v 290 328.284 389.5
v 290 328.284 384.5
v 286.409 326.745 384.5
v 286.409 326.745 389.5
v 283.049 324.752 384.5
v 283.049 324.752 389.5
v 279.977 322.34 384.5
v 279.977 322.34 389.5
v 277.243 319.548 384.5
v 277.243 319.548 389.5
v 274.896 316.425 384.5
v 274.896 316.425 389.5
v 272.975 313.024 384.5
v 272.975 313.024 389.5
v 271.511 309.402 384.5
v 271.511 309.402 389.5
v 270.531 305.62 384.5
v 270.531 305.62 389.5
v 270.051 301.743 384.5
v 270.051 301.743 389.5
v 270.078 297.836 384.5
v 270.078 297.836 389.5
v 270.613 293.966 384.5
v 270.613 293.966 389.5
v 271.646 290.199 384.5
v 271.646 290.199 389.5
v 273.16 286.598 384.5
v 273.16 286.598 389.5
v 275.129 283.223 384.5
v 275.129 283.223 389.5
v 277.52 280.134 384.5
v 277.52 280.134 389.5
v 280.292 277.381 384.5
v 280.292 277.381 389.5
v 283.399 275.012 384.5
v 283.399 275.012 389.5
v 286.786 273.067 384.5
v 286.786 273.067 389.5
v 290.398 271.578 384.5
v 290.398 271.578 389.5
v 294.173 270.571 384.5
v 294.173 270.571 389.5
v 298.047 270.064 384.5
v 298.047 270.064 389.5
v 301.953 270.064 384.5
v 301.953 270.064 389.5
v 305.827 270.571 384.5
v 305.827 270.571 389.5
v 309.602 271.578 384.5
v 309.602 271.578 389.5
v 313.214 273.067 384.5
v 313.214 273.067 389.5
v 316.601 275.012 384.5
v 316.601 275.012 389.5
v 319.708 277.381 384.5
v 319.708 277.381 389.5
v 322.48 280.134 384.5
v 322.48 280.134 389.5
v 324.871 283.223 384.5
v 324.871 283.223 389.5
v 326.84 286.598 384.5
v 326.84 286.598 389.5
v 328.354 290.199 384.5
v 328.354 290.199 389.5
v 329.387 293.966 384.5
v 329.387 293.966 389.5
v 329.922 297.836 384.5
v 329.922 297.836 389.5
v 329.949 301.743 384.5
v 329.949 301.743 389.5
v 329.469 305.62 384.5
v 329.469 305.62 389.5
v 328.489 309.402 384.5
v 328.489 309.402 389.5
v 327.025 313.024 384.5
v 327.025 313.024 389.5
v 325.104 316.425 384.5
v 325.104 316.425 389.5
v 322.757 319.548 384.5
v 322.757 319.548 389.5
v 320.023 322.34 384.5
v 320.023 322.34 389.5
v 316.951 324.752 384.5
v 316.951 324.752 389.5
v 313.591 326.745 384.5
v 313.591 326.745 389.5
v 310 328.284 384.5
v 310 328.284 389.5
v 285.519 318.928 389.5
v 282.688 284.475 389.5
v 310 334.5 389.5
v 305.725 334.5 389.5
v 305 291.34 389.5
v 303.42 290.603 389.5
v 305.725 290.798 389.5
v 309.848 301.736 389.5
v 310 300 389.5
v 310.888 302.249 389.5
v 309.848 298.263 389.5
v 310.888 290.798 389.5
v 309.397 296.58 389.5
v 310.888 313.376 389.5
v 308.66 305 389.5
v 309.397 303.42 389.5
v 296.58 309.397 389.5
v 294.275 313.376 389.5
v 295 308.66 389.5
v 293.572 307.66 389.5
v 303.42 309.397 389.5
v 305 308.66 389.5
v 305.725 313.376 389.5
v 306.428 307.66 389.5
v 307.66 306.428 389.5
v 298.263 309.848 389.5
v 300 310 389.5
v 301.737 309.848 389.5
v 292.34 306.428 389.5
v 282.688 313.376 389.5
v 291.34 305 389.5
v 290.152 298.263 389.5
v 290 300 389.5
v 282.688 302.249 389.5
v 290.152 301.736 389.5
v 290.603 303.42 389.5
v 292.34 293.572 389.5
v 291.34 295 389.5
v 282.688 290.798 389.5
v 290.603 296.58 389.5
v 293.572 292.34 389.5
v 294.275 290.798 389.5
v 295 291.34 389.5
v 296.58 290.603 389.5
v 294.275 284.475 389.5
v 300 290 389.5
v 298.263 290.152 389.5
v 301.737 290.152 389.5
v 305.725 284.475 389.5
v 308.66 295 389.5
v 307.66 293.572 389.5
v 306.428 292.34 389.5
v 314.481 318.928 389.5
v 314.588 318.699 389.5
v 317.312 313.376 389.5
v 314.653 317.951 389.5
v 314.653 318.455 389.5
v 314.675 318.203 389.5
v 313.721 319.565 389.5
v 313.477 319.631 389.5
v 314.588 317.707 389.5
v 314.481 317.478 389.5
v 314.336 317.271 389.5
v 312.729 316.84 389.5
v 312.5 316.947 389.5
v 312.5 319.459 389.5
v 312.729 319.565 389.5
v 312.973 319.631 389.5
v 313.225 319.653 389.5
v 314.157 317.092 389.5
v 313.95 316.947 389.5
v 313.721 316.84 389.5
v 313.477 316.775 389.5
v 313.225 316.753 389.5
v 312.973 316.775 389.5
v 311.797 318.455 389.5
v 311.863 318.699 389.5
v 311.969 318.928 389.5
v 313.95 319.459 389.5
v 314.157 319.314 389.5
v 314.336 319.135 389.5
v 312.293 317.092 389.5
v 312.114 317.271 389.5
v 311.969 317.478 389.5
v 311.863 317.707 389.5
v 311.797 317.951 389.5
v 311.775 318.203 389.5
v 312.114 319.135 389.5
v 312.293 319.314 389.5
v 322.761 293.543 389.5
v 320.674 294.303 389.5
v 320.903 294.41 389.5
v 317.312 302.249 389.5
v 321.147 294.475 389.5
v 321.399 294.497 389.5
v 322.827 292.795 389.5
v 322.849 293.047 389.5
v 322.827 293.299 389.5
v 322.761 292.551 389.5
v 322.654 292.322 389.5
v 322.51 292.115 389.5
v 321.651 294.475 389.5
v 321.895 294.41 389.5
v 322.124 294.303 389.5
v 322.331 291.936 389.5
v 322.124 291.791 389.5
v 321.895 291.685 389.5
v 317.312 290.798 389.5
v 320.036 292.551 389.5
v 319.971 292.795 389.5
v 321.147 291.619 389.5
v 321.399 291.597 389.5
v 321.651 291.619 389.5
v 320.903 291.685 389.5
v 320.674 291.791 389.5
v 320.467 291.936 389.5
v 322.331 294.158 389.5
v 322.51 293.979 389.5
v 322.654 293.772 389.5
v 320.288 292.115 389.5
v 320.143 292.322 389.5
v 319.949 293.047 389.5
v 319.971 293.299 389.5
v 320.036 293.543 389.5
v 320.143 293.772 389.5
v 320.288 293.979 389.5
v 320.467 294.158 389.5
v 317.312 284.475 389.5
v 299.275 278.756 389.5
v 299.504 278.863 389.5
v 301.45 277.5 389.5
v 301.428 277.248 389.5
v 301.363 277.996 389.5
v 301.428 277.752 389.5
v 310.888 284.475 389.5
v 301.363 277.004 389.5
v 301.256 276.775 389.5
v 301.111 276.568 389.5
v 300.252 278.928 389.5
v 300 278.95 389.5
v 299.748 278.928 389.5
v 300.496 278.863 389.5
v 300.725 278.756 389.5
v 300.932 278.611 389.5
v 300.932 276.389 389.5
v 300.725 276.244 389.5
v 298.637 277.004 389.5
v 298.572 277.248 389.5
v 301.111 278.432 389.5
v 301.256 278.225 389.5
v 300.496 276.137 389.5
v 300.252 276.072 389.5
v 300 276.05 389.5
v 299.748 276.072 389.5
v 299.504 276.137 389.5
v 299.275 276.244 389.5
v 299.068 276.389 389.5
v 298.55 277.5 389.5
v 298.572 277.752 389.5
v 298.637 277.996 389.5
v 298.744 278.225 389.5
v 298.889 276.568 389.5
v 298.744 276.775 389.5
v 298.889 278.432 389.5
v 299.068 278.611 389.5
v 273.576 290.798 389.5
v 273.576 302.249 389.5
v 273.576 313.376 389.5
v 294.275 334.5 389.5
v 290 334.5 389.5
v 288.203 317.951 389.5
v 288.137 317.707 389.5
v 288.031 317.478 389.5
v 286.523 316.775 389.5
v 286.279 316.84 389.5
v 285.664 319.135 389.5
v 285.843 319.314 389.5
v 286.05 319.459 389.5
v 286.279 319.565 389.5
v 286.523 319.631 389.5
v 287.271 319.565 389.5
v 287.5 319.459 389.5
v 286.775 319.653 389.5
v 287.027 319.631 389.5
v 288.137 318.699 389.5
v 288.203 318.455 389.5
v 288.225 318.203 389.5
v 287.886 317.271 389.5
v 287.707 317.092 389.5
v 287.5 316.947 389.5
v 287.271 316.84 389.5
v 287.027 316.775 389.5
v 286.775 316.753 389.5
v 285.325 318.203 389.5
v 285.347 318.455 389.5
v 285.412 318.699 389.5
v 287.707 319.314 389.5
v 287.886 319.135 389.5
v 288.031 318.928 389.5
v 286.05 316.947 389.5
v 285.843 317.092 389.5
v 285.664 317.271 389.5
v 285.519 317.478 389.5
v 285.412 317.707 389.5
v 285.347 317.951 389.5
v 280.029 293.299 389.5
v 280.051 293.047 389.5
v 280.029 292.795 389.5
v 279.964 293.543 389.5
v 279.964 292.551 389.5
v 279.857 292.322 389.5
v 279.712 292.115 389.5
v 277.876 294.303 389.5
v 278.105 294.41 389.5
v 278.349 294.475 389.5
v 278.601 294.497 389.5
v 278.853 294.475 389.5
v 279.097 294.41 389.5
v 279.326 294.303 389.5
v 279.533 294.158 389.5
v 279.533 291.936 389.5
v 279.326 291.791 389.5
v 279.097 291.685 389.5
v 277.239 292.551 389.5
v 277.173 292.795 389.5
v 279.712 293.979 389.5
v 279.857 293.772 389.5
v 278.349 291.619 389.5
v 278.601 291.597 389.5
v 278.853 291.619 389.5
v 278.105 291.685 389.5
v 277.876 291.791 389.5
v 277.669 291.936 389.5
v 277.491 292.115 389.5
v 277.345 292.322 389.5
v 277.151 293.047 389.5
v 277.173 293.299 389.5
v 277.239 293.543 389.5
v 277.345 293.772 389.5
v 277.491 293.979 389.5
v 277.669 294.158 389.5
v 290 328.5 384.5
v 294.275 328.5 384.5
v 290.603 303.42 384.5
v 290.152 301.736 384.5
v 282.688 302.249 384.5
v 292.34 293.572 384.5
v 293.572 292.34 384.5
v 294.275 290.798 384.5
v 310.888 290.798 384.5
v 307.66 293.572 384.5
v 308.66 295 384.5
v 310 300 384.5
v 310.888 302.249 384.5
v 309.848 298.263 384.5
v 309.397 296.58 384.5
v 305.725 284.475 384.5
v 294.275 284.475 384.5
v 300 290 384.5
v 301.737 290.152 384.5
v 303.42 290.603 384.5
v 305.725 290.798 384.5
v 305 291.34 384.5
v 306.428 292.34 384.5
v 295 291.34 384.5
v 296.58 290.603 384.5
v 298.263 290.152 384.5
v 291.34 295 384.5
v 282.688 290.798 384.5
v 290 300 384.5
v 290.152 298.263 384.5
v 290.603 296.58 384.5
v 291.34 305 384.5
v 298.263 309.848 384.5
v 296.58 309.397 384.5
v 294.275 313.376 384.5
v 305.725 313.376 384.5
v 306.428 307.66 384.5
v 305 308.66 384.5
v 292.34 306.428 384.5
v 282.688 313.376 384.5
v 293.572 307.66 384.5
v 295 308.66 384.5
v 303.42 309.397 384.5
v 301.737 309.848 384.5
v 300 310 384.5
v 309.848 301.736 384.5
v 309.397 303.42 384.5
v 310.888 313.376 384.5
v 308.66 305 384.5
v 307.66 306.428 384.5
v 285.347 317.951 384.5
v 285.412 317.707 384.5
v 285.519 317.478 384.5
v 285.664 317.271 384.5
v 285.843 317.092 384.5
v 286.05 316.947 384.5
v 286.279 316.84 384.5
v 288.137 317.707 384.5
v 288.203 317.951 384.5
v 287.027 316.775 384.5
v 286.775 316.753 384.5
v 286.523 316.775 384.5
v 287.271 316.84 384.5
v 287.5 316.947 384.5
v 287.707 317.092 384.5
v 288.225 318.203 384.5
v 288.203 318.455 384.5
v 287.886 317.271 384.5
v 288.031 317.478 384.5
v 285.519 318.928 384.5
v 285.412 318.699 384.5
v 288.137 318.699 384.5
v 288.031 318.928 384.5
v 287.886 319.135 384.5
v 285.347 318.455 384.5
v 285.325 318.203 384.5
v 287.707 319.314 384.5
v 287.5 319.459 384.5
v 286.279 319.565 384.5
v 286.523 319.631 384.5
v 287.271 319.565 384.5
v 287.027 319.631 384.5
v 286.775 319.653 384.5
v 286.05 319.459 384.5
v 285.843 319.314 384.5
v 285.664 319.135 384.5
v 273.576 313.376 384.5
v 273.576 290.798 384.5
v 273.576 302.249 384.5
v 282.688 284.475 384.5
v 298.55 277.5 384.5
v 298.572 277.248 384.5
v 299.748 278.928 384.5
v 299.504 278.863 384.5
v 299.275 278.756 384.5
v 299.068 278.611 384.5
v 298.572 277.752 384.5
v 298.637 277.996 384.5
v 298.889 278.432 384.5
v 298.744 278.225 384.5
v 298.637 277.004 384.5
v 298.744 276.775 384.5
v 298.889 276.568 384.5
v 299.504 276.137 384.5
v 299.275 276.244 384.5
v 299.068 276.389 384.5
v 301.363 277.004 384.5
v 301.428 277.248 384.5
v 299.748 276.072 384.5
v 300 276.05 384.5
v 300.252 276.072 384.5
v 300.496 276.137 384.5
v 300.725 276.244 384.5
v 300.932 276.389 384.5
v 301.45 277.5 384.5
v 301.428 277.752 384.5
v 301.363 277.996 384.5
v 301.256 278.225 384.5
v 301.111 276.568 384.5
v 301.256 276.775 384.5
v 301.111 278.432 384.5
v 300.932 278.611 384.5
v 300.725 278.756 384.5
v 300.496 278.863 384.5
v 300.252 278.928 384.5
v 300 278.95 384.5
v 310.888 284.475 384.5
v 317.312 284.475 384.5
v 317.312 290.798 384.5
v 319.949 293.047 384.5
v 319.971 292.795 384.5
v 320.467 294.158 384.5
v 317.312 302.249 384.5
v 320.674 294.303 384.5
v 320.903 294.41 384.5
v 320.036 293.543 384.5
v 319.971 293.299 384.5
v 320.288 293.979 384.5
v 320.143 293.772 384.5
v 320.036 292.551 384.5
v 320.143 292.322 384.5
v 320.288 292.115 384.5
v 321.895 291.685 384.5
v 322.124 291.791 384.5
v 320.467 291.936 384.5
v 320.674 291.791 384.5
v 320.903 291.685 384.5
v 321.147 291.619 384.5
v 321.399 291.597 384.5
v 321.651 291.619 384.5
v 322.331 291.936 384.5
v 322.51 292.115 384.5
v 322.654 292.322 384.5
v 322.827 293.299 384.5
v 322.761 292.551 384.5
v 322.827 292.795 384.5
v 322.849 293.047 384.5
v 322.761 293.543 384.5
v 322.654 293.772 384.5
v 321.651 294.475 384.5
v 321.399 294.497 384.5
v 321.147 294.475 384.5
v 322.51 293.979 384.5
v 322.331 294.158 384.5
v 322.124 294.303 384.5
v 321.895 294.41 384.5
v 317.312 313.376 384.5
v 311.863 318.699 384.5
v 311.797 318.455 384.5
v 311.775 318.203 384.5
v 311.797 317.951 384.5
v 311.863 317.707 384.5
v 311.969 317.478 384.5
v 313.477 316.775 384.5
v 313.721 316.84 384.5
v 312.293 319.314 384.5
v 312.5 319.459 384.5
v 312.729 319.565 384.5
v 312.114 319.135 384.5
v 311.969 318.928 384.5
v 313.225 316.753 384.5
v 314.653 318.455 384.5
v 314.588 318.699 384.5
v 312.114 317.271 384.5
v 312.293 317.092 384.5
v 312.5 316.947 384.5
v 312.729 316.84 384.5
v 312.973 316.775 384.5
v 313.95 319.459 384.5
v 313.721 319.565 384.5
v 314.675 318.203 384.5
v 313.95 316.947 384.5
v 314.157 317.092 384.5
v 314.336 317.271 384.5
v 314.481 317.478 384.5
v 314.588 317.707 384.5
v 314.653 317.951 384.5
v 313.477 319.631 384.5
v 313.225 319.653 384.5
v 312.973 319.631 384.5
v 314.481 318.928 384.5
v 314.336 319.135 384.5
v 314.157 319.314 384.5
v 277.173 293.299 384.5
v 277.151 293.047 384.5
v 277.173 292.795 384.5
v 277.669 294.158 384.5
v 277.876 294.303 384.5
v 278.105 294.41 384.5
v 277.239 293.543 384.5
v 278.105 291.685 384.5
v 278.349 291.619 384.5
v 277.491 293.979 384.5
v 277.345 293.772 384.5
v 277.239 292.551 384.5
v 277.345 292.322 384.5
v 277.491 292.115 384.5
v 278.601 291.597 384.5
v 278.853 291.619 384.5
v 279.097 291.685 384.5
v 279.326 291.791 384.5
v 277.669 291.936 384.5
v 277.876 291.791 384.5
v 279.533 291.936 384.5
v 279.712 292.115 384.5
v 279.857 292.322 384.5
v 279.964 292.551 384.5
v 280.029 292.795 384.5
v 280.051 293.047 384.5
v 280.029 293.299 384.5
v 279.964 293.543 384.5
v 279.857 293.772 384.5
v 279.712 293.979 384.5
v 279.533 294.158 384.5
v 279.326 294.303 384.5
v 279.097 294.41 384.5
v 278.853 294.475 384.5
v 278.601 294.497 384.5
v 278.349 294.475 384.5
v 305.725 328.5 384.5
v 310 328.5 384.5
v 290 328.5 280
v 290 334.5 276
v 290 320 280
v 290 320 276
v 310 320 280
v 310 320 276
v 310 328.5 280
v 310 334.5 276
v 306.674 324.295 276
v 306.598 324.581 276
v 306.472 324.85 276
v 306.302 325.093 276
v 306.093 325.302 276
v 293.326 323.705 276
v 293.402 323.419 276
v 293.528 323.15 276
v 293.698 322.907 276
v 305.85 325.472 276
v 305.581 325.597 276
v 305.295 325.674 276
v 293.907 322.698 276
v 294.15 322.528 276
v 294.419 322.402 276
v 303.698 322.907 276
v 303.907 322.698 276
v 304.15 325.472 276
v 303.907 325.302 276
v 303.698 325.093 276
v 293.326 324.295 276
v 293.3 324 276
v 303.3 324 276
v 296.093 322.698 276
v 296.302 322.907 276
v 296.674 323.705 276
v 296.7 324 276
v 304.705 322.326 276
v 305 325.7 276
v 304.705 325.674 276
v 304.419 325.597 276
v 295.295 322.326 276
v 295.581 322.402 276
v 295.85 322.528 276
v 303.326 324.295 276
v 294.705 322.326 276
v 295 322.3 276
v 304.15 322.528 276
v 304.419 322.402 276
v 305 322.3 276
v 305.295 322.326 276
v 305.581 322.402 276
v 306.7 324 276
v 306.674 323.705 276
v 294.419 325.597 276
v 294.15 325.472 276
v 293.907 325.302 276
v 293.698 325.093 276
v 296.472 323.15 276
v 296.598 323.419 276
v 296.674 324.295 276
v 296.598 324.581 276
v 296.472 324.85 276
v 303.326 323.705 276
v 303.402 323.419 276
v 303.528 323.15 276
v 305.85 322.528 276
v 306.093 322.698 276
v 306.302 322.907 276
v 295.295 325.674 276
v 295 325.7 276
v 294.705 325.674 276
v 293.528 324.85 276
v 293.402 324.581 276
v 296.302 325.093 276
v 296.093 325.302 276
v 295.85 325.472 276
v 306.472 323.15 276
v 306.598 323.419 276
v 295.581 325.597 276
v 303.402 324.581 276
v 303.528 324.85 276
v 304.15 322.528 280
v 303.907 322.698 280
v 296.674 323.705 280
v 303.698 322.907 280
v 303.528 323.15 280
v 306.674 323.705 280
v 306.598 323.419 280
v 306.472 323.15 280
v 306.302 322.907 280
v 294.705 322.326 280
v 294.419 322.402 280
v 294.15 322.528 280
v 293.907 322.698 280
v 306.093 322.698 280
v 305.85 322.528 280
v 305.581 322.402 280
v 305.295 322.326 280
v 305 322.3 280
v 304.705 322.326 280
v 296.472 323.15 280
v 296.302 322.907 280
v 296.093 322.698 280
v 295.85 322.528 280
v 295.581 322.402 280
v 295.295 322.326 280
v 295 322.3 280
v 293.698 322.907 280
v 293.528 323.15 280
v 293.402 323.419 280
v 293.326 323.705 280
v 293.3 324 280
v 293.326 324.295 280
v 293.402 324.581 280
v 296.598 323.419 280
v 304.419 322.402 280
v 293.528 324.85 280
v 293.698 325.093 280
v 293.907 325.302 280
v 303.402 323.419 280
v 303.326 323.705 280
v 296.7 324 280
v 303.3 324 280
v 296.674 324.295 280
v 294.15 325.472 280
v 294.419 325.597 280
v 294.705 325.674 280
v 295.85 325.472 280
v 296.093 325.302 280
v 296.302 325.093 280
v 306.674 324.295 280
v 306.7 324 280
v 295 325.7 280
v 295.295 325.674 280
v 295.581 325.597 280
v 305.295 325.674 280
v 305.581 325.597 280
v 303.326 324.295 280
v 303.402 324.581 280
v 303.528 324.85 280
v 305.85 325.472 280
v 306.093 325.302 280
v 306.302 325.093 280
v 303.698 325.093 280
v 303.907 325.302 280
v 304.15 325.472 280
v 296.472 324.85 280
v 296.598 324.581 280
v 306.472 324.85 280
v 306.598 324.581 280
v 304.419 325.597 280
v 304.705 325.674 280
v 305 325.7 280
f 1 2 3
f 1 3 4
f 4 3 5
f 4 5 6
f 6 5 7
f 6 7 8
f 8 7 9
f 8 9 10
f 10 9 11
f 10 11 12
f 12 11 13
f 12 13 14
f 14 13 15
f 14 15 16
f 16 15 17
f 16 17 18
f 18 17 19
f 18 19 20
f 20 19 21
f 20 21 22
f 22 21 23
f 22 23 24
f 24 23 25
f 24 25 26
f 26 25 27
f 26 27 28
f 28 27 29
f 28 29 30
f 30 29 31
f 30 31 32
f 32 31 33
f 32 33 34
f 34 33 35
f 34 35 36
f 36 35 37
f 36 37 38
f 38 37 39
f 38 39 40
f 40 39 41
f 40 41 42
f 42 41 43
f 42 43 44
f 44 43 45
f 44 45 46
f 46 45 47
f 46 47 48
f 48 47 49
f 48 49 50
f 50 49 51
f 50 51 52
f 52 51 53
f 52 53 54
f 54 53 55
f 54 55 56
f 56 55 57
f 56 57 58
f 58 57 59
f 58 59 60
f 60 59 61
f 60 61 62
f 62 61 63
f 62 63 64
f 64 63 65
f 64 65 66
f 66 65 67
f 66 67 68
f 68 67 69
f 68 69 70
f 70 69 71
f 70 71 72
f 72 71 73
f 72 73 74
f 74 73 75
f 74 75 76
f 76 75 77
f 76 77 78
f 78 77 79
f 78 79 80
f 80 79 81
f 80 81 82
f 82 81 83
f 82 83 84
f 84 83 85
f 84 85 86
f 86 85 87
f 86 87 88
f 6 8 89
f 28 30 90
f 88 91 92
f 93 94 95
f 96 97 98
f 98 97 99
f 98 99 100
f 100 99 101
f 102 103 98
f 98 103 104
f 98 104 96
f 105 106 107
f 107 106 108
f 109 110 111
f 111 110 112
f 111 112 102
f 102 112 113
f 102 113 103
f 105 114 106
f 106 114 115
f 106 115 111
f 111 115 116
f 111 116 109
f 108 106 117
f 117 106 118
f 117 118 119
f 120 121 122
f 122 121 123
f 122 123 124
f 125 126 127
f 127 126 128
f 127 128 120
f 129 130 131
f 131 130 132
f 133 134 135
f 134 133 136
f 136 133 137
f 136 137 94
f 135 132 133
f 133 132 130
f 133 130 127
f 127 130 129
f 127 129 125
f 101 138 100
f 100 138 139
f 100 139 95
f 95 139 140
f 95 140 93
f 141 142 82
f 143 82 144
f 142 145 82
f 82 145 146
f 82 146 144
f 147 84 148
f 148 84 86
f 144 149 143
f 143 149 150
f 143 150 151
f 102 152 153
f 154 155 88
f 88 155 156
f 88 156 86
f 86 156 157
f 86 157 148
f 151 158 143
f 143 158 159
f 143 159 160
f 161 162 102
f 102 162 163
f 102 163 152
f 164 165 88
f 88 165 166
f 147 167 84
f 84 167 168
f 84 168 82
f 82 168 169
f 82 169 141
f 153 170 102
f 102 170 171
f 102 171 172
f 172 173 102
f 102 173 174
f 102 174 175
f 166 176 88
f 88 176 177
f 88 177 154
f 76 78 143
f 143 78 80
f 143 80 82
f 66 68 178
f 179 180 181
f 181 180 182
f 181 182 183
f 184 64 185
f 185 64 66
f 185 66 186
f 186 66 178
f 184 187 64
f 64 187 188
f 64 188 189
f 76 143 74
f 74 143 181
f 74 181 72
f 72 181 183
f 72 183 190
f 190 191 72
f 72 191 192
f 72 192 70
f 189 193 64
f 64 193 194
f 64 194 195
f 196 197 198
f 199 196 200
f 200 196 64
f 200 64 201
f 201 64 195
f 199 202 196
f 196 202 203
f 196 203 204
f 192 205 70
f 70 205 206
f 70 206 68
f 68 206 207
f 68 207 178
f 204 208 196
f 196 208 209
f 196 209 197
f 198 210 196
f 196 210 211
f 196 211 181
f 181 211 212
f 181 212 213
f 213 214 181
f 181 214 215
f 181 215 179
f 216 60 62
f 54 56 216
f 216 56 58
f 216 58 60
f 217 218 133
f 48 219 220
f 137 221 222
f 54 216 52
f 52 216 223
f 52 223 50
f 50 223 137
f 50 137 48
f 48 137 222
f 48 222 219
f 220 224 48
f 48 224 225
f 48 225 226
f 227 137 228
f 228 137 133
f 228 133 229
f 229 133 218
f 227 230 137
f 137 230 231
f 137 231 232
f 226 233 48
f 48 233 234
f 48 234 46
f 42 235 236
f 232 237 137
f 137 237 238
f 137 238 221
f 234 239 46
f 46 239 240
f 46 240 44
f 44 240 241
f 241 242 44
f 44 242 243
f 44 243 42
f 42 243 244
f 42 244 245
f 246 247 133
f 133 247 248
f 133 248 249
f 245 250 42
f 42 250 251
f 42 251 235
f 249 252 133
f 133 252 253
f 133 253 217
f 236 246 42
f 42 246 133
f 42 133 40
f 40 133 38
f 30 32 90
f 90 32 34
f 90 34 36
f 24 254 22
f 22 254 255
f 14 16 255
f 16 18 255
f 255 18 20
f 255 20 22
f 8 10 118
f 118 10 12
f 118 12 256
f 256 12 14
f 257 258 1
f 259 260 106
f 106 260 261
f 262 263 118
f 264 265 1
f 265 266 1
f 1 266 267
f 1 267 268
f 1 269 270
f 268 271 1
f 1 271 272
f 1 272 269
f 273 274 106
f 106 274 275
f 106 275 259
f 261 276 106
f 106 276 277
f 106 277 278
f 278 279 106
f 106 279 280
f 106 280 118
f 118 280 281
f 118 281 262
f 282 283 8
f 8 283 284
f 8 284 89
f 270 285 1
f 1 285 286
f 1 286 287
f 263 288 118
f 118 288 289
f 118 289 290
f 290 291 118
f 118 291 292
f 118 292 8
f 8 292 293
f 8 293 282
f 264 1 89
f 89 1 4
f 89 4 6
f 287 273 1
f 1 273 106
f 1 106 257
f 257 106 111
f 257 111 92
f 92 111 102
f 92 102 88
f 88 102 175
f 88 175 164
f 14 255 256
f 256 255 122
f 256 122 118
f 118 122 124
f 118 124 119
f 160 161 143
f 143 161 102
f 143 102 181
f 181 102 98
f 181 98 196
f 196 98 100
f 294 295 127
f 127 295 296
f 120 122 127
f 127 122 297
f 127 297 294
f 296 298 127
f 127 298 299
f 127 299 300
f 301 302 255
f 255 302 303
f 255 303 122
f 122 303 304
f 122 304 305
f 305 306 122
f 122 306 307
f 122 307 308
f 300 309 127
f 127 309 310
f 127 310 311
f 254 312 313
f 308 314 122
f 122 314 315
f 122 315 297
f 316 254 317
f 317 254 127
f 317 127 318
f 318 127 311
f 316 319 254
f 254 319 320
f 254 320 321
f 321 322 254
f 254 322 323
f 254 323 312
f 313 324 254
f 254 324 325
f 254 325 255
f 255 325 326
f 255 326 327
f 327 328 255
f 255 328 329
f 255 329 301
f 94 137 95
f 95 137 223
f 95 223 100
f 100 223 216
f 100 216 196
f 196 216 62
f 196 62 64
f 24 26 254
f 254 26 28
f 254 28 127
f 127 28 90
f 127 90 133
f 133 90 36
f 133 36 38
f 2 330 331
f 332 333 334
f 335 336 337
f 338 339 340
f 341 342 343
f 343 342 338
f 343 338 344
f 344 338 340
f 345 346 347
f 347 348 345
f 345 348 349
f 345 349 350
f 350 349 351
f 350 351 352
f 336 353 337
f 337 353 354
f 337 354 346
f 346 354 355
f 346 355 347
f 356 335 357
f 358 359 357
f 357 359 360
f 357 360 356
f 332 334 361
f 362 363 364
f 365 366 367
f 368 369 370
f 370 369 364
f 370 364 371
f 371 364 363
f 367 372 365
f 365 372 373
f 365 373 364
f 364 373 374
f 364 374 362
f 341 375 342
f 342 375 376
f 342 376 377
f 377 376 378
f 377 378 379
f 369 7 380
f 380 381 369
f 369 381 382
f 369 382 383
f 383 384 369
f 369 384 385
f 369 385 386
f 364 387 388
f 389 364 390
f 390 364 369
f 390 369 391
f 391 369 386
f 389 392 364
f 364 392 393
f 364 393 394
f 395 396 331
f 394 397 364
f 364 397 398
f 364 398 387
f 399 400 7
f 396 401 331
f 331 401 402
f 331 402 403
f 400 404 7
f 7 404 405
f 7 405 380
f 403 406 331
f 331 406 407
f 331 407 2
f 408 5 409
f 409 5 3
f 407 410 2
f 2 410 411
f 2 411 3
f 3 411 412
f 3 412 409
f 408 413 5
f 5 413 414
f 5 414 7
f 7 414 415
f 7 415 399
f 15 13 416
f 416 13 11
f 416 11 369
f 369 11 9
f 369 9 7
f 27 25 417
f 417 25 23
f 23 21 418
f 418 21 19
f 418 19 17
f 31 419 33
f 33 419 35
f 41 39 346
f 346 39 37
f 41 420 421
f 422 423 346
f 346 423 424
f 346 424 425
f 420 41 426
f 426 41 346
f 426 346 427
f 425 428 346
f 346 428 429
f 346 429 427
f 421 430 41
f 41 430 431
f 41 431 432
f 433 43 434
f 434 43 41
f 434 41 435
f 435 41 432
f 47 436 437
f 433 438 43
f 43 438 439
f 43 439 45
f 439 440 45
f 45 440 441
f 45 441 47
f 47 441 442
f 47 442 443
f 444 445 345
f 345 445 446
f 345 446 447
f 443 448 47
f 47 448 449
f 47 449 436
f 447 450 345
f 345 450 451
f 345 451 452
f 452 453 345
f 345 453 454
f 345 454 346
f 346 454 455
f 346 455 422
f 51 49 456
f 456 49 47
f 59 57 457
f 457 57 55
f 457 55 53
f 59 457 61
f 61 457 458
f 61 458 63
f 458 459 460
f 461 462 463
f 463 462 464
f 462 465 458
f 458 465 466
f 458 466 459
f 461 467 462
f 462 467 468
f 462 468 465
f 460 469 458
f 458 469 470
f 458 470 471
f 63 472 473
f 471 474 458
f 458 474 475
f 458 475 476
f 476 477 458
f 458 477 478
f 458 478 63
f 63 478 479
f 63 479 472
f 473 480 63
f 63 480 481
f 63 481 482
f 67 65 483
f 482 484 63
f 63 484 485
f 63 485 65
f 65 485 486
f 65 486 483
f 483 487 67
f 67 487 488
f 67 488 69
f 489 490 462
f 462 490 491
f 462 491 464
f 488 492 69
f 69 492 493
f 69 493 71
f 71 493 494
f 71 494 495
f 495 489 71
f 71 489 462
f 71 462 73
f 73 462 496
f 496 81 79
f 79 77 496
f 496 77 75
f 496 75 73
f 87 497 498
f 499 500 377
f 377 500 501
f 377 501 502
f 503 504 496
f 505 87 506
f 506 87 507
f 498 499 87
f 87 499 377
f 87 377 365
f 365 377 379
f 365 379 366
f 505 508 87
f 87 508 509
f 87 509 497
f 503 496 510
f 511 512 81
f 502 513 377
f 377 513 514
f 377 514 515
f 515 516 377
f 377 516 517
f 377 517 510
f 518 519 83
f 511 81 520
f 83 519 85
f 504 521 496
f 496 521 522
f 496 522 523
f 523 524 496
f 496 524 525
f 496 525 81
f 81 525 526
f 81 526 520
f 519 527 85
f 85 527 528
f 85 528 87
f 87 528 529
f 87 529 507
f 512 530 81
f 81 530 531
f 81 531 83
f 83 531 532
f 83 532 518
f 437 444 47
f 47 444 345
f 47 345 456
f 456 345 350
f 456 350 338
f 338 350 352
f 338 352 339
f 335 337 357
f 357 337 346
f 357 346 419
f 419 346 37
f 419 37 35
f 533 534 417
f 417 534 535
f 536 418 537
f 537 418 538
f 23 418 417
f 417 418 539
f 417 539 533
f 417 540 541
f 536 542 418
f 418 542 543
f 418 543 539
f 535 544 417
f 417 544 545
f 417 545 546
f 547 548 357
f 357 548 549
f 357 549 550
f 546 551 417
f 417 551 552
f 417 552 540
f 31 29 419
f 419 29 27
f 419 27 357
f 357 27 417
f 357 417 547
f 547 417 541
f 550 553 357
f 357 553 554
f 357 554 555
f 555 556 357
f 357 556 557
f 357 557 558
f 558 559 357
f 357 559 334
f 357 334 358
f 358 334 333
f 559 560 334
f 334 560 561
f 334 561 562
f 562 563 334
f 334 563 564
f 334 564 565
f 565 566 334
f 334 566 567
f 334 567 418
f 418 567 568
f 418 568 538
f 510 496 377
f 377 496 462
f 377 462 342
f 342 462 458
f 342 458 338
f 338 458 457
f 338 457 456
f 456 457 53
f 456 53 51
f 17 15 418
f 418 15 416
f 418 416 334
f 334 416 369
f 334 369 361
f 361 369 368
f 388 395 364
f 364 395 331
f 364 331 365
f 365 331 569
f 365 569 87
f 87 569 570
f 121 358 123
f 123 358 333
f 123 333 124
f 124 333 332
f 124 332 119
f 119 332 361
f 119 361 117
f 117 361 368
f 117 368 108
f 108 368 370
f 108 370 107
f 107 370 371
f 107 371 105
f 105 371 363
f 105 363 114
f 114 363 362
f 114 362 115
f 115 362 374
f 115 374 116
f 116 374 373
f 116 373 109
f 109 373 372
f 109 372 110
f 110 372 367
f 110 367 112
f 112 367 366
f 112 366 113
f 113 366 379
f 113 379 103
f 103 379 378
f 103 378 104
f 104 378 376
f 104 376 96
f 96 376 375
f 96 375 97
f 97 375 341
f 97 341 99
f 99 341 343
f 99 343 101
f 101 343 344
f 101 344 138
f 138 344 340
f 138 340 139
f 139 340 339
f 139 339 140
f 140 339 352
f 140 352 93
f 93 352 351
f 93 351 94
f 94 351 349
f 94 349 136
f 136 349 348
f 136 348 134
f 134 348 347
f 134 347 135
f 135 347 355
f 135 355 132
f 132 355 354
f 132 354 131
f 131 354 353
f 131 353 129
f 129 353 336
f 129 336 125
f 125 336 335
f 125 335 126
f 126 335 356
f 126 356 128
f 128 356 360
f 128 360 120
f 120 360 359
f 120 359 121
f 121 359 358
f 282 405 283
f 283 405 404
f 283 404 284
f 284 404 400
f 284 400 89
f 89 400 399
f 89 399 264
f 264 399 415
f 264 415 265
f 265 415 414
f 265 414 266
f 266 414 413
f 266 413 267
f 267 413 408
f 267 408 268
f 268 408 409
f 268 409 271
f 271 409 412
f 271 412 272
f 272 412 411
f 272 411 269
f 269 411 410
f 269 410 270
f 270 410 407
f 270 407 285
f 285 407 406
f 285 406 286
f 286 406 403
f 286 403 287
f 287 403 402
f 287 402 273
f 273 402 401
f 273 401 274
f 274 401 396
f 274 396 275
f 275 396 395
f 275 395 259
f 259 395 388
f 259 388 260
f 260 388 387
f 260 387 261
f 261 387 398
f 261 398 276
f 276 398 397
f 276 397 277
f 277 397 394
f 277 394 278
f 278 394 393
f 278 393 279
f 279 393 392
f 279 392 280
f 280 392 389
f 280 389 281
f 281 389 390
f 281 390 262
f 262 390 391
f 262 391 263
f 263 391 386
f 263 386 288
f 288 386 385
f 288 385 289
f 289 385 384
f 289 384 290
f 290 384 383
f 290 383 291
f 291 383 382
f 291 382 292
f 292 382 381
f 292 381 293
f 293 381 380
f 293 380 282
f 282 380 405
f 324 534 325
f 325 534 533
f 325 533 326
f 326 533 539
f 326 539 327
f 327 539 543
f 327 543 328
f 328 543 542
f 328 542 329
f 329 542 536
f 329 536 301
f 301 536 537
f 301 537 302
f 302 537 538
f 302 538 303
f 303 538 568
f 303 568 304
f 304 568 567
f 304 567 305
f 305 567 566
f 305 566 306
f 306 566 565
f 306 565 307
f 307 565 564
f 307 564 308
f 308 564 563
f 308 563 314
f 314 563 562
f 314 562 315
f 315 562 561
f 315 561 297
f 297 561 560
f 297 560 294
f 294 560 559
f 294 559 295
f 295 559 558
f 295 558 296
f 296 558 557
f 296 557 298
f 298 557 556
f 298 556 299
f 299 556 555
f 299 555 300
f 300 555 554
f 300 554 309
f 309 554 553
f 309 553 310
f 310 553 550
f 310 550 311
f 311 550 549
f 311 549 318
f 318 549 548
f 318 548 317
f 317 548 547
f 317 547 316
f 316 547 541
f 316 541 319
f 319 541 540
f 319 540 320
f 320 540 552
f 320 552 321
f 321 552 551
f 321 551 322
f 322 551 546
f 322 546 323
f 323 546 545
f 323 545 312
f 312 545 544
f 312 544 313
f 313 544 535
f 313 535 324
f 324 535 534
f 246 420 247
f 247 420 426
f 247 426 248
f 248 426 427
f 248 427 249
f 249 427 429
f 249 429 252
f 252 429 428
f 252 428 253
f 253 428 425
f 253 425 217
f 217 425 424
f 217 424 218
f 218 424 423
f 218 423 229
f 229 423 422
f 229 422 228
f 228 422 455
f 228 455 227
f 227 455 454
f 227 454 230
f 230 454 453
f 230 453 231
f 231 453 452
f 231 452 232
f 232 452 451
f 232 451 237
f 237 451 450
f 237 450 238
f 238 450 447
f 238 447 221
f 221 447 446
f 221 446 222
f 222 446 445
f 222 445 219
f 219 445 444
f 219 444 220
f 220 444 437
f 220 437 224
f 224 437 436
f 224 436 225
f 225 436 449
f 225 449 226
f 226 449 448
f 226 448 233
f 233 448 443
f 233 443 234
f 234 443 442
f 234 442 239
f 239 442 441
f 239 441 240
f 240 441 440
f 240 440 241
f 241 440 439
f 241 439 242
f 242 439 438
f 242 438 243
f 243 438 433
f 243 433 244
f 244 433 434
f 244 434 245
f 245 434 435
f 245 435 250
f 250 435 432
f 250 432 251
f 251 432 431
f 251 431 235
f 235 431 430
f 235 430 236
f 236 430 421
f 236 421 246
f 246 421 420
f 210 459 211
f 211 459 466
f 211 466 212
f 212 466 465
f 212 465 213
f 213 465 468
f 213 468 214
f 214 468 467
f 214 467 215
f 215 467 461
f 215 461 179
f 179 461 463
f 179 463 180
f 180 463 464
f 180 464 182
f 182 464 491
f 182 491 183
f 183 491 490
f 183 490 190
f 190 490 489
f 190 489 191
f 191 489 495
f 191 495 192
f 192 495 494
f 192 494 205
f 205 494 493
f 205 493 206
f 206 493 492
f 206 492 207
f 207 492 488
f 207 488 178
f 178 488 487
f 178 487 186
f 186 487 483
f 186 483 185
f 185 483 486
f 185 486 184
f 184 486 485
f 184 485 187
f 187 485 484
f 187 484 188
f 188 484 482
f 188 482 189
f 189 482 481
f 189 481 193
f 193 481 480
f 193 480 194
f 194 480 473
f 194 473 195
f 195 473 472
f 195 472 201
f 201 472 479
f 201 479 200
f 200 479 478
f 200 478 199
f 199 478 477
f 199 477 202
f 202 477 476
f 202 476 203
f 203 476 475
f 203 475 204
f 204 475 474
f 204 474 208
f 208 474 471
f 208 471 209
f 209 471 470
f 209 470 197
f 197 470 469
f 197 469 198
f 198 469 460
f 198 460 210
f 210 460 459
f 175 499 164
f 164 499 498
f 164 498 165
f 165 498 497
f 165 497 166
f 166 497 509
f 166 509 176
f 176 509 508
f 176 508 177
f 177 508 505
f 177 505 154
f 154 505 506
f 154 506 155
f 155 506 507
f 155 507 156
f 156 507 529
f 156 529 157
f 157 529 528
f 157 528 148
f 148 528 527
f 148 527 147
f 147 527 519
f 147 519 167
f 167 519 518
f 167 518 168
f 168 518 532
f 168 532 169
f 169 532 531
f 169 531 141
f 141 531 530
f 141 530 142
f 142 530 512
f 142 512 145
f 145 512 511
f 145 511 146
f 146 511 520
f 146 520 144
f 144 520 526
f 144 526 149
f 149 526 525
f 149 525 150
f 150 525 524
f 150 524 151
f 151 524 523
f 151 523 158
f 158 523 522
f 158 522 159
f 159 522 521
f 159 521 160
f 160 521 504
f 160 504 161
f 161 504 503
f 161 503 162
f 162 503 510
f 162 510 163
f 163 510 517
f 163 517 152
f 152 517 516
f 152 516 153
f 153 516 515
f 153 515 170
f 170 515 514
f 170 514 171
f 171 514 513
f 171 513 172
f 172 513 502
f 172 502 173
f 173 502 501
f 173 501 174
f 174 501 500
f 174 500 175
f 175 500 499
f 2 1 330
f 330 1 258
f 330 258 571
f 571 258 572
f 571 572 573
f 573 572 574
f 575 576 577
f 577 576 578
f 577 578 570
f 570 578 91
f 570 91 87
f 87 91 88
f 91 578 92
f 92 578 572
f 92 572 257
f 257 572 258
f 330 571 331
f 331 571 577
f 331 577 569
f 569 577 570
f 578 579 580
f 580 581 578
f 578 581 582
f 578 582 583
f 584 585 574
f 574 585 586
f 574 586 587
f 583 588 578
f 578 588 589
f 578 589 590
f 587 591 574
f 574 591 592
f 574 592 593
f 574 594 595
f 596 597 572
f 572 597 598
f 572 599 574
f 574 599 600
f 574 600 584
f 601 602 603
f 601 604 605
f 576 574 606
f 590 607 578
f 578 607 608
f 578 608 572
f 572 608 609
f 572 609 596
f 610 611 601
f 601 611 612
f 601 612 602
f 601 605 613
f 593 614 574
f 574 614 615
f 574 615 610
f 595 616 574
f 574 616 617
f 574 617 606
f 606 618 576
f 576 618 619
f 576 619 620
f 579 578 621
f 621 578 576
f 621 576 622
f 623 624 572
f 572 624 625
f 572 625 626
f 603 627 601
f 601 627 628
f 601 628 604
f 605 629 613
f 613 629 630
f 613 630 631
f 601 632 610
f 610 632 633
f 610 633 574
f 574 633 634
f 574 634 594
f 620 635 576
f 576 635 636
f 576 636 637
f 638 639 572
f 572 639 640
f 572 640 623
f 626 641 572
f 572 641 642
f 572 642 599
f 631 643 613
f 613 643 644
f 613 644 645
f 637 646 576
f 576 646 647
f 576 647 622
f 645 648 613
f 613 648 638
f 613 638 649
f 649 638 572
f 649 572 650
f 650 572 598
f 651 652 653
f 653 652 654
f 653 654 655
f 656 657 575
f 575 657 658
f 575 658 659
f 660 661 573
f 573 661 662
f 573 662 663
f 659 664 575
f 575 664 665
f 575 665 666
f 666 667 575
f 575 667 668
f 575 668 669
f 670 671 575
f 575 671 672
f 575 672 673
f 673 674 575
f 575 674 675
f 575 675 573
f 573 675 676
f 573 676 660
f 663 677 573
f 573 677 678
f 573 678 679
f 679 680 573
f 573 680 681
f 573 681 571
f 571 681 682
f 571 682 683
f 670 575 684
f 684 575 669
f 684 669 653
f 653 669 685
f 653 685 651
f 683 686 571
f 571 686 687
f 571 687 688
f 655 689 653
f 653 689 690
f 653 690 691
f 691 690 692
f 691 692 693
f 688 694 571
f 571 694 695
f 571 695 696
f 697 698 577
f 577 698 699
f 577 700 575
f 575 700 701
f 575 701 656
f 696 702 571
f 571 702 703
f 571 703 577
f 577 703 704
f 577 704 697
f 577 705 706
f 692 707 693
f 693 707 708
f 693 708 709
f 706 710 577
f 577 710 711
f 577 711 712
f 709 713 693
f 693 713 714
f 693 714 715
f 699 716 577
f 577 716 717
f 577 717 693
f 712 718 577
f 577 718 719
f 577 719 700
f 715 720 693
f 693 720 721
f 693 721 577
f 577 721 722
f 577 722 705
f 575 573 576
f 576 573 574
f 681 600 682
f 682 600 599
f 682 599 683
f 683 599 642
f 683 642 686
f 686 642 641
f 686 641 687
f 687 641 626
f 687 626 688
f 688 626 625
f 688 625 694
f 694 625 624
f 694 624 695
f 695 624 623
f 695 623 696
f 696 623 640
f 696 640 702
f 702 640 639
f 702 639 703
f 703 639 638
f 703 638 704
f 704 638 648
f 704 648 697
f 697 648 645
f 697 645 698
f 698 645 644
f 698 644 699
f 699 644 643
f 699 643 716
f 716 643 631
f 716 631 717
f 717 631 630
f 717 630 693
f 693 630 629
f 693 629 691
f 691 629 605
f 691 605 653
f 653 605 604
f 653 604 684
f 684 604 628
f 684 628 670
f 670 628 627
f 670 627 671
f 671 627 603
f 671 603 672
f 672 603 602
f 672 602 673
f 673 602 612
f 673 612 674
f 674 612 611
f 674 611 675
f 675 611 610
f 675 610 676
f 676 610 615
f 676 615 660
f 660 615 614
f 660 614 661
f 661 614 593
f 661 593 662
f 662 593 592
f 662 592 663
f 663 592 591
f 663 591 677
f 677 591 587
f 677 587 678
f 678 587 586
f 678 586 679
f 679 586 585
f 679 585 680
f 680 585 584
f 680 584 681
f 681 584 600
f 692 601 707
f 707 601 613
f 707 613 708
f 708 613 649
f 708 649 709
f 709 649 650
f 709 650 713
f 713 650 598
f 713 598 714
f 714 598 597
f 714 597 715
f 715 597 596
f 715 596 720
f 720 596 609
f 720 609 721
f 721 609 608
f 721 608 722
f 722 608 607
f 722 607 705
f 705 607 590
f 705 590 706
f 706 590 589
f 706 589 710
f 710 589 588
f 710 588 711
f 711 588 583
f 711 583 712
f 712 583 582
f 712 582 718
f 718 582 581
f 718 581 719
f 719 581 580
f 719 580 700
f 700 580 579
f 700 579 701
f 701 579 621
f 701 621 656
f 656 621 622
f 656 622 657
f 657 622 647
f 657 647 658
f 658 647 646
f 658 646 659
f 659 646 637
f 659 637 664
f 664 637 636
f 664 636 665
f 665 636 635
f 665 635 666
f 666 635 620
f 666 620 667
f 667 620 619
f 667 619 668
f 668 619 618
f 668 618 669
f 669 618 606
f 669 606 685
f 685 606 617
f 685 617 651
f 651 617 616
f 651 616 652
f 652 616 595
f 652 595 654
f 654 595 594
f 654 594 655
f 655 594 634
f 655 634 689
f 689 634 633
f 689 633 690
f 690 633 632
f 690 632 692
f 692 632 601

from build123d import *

# Parameters (mm, degrees)
SKETCH1_R           = 30
SKETCH1_R_2         = 10
SKETCH1_R_3         = 1.45
BOSS_EXTRUDE1_DEPTH = 5
SKETCH2_W           = 20
SKETCH2_H           = 14.5
BOSS_EXTRUDE2_DEPTH = 5
SKETCH3_W           = 20
SKETCH3_H           = 113.5
BOSS_EXTRUDE3_DEPTH = 6
SKETCH4_W           = 20
SKETCH4_H           = 14.5
SKETCH4_R           = 1.7
BOSS_EXTRUDE4_DEPTH = 4


with BuildPart() as part:
    # Sketch1 → Boss-Extrude1 (new body)
    with BuildSketch(Plane.XY.offset(384.5)):
        with Locations((300, 300)):
            Circle(SKETCH1_R)
        with Locations((300, 300)):
            Circle(SKETCH1_R_2, mode=Mode.SUBTRACT)
        with Locations((286.774831823, 318.202882373)):
            Circle(SKETCH1_R_3, mode=Mode.SUBTRACT)
        with Locations((278.601228383, 293.047117627)):
            Circle(SKETCH1_R_3, mode=Mode.SUBTRACT)
        with Locations((300, 277.5)):
            Circle(SKETCH1_R_3, mode=Mode.SUBTRACT)
        with Locations((321.398771617, 293.047117627)):
            Circle(SKETCH1_R_3, mode=Mode.SUBTRACT)
        with Locations((313.225168177, 318.202882373)):
            Circle(SKETCH1_R_3, mode=Mode.SUBTRACT)
    extrude(amount=BOSS_EXTRUDE1_DEPTH)

    # Sketch2 → Boss-Extrude2 (add)
    with BuildSketch(Plane.XY.offset(384.5)):
        with Locations((300, 327.25)):
            Rectangle(SKETCH2_W, SKETCH2_H)
    extrude(amount=BOSS_EXTRUDE2_DEPTH)

    # Sketch3 → Boss-Extrude3 (add)
    with BuildSketch(Plane(origin=(0, 328.5, 0), x_dir=(1, 0, 0), z_dir=(0, 1, 0))):
        with Locations((300, -332.75)):
            Rectangle(SKETCH3_W, SKETCH3_H)
    extrude(amount=BOSS_EXTRUDE3_DEPTH)

    # Sketch4 → Boss-Extrude4 (add)
    with BuildSketch(Plane.XY.offset(276)):
        with Locations((300, 327.25)):
            Rectangle(SKETCH4_W, SKETCH4_H)
        with Locations((295, 324)):
            Circle(SKETCH4_R, mode=Mode.SUBTRACT)
        with Locations((305, 324)):
            Circle(SKETCH4_R, mode=Mode.SUBTRACT)
    extrude(amount=BOSS_EXTRUDE4_DEPTH)


solid = part.part
